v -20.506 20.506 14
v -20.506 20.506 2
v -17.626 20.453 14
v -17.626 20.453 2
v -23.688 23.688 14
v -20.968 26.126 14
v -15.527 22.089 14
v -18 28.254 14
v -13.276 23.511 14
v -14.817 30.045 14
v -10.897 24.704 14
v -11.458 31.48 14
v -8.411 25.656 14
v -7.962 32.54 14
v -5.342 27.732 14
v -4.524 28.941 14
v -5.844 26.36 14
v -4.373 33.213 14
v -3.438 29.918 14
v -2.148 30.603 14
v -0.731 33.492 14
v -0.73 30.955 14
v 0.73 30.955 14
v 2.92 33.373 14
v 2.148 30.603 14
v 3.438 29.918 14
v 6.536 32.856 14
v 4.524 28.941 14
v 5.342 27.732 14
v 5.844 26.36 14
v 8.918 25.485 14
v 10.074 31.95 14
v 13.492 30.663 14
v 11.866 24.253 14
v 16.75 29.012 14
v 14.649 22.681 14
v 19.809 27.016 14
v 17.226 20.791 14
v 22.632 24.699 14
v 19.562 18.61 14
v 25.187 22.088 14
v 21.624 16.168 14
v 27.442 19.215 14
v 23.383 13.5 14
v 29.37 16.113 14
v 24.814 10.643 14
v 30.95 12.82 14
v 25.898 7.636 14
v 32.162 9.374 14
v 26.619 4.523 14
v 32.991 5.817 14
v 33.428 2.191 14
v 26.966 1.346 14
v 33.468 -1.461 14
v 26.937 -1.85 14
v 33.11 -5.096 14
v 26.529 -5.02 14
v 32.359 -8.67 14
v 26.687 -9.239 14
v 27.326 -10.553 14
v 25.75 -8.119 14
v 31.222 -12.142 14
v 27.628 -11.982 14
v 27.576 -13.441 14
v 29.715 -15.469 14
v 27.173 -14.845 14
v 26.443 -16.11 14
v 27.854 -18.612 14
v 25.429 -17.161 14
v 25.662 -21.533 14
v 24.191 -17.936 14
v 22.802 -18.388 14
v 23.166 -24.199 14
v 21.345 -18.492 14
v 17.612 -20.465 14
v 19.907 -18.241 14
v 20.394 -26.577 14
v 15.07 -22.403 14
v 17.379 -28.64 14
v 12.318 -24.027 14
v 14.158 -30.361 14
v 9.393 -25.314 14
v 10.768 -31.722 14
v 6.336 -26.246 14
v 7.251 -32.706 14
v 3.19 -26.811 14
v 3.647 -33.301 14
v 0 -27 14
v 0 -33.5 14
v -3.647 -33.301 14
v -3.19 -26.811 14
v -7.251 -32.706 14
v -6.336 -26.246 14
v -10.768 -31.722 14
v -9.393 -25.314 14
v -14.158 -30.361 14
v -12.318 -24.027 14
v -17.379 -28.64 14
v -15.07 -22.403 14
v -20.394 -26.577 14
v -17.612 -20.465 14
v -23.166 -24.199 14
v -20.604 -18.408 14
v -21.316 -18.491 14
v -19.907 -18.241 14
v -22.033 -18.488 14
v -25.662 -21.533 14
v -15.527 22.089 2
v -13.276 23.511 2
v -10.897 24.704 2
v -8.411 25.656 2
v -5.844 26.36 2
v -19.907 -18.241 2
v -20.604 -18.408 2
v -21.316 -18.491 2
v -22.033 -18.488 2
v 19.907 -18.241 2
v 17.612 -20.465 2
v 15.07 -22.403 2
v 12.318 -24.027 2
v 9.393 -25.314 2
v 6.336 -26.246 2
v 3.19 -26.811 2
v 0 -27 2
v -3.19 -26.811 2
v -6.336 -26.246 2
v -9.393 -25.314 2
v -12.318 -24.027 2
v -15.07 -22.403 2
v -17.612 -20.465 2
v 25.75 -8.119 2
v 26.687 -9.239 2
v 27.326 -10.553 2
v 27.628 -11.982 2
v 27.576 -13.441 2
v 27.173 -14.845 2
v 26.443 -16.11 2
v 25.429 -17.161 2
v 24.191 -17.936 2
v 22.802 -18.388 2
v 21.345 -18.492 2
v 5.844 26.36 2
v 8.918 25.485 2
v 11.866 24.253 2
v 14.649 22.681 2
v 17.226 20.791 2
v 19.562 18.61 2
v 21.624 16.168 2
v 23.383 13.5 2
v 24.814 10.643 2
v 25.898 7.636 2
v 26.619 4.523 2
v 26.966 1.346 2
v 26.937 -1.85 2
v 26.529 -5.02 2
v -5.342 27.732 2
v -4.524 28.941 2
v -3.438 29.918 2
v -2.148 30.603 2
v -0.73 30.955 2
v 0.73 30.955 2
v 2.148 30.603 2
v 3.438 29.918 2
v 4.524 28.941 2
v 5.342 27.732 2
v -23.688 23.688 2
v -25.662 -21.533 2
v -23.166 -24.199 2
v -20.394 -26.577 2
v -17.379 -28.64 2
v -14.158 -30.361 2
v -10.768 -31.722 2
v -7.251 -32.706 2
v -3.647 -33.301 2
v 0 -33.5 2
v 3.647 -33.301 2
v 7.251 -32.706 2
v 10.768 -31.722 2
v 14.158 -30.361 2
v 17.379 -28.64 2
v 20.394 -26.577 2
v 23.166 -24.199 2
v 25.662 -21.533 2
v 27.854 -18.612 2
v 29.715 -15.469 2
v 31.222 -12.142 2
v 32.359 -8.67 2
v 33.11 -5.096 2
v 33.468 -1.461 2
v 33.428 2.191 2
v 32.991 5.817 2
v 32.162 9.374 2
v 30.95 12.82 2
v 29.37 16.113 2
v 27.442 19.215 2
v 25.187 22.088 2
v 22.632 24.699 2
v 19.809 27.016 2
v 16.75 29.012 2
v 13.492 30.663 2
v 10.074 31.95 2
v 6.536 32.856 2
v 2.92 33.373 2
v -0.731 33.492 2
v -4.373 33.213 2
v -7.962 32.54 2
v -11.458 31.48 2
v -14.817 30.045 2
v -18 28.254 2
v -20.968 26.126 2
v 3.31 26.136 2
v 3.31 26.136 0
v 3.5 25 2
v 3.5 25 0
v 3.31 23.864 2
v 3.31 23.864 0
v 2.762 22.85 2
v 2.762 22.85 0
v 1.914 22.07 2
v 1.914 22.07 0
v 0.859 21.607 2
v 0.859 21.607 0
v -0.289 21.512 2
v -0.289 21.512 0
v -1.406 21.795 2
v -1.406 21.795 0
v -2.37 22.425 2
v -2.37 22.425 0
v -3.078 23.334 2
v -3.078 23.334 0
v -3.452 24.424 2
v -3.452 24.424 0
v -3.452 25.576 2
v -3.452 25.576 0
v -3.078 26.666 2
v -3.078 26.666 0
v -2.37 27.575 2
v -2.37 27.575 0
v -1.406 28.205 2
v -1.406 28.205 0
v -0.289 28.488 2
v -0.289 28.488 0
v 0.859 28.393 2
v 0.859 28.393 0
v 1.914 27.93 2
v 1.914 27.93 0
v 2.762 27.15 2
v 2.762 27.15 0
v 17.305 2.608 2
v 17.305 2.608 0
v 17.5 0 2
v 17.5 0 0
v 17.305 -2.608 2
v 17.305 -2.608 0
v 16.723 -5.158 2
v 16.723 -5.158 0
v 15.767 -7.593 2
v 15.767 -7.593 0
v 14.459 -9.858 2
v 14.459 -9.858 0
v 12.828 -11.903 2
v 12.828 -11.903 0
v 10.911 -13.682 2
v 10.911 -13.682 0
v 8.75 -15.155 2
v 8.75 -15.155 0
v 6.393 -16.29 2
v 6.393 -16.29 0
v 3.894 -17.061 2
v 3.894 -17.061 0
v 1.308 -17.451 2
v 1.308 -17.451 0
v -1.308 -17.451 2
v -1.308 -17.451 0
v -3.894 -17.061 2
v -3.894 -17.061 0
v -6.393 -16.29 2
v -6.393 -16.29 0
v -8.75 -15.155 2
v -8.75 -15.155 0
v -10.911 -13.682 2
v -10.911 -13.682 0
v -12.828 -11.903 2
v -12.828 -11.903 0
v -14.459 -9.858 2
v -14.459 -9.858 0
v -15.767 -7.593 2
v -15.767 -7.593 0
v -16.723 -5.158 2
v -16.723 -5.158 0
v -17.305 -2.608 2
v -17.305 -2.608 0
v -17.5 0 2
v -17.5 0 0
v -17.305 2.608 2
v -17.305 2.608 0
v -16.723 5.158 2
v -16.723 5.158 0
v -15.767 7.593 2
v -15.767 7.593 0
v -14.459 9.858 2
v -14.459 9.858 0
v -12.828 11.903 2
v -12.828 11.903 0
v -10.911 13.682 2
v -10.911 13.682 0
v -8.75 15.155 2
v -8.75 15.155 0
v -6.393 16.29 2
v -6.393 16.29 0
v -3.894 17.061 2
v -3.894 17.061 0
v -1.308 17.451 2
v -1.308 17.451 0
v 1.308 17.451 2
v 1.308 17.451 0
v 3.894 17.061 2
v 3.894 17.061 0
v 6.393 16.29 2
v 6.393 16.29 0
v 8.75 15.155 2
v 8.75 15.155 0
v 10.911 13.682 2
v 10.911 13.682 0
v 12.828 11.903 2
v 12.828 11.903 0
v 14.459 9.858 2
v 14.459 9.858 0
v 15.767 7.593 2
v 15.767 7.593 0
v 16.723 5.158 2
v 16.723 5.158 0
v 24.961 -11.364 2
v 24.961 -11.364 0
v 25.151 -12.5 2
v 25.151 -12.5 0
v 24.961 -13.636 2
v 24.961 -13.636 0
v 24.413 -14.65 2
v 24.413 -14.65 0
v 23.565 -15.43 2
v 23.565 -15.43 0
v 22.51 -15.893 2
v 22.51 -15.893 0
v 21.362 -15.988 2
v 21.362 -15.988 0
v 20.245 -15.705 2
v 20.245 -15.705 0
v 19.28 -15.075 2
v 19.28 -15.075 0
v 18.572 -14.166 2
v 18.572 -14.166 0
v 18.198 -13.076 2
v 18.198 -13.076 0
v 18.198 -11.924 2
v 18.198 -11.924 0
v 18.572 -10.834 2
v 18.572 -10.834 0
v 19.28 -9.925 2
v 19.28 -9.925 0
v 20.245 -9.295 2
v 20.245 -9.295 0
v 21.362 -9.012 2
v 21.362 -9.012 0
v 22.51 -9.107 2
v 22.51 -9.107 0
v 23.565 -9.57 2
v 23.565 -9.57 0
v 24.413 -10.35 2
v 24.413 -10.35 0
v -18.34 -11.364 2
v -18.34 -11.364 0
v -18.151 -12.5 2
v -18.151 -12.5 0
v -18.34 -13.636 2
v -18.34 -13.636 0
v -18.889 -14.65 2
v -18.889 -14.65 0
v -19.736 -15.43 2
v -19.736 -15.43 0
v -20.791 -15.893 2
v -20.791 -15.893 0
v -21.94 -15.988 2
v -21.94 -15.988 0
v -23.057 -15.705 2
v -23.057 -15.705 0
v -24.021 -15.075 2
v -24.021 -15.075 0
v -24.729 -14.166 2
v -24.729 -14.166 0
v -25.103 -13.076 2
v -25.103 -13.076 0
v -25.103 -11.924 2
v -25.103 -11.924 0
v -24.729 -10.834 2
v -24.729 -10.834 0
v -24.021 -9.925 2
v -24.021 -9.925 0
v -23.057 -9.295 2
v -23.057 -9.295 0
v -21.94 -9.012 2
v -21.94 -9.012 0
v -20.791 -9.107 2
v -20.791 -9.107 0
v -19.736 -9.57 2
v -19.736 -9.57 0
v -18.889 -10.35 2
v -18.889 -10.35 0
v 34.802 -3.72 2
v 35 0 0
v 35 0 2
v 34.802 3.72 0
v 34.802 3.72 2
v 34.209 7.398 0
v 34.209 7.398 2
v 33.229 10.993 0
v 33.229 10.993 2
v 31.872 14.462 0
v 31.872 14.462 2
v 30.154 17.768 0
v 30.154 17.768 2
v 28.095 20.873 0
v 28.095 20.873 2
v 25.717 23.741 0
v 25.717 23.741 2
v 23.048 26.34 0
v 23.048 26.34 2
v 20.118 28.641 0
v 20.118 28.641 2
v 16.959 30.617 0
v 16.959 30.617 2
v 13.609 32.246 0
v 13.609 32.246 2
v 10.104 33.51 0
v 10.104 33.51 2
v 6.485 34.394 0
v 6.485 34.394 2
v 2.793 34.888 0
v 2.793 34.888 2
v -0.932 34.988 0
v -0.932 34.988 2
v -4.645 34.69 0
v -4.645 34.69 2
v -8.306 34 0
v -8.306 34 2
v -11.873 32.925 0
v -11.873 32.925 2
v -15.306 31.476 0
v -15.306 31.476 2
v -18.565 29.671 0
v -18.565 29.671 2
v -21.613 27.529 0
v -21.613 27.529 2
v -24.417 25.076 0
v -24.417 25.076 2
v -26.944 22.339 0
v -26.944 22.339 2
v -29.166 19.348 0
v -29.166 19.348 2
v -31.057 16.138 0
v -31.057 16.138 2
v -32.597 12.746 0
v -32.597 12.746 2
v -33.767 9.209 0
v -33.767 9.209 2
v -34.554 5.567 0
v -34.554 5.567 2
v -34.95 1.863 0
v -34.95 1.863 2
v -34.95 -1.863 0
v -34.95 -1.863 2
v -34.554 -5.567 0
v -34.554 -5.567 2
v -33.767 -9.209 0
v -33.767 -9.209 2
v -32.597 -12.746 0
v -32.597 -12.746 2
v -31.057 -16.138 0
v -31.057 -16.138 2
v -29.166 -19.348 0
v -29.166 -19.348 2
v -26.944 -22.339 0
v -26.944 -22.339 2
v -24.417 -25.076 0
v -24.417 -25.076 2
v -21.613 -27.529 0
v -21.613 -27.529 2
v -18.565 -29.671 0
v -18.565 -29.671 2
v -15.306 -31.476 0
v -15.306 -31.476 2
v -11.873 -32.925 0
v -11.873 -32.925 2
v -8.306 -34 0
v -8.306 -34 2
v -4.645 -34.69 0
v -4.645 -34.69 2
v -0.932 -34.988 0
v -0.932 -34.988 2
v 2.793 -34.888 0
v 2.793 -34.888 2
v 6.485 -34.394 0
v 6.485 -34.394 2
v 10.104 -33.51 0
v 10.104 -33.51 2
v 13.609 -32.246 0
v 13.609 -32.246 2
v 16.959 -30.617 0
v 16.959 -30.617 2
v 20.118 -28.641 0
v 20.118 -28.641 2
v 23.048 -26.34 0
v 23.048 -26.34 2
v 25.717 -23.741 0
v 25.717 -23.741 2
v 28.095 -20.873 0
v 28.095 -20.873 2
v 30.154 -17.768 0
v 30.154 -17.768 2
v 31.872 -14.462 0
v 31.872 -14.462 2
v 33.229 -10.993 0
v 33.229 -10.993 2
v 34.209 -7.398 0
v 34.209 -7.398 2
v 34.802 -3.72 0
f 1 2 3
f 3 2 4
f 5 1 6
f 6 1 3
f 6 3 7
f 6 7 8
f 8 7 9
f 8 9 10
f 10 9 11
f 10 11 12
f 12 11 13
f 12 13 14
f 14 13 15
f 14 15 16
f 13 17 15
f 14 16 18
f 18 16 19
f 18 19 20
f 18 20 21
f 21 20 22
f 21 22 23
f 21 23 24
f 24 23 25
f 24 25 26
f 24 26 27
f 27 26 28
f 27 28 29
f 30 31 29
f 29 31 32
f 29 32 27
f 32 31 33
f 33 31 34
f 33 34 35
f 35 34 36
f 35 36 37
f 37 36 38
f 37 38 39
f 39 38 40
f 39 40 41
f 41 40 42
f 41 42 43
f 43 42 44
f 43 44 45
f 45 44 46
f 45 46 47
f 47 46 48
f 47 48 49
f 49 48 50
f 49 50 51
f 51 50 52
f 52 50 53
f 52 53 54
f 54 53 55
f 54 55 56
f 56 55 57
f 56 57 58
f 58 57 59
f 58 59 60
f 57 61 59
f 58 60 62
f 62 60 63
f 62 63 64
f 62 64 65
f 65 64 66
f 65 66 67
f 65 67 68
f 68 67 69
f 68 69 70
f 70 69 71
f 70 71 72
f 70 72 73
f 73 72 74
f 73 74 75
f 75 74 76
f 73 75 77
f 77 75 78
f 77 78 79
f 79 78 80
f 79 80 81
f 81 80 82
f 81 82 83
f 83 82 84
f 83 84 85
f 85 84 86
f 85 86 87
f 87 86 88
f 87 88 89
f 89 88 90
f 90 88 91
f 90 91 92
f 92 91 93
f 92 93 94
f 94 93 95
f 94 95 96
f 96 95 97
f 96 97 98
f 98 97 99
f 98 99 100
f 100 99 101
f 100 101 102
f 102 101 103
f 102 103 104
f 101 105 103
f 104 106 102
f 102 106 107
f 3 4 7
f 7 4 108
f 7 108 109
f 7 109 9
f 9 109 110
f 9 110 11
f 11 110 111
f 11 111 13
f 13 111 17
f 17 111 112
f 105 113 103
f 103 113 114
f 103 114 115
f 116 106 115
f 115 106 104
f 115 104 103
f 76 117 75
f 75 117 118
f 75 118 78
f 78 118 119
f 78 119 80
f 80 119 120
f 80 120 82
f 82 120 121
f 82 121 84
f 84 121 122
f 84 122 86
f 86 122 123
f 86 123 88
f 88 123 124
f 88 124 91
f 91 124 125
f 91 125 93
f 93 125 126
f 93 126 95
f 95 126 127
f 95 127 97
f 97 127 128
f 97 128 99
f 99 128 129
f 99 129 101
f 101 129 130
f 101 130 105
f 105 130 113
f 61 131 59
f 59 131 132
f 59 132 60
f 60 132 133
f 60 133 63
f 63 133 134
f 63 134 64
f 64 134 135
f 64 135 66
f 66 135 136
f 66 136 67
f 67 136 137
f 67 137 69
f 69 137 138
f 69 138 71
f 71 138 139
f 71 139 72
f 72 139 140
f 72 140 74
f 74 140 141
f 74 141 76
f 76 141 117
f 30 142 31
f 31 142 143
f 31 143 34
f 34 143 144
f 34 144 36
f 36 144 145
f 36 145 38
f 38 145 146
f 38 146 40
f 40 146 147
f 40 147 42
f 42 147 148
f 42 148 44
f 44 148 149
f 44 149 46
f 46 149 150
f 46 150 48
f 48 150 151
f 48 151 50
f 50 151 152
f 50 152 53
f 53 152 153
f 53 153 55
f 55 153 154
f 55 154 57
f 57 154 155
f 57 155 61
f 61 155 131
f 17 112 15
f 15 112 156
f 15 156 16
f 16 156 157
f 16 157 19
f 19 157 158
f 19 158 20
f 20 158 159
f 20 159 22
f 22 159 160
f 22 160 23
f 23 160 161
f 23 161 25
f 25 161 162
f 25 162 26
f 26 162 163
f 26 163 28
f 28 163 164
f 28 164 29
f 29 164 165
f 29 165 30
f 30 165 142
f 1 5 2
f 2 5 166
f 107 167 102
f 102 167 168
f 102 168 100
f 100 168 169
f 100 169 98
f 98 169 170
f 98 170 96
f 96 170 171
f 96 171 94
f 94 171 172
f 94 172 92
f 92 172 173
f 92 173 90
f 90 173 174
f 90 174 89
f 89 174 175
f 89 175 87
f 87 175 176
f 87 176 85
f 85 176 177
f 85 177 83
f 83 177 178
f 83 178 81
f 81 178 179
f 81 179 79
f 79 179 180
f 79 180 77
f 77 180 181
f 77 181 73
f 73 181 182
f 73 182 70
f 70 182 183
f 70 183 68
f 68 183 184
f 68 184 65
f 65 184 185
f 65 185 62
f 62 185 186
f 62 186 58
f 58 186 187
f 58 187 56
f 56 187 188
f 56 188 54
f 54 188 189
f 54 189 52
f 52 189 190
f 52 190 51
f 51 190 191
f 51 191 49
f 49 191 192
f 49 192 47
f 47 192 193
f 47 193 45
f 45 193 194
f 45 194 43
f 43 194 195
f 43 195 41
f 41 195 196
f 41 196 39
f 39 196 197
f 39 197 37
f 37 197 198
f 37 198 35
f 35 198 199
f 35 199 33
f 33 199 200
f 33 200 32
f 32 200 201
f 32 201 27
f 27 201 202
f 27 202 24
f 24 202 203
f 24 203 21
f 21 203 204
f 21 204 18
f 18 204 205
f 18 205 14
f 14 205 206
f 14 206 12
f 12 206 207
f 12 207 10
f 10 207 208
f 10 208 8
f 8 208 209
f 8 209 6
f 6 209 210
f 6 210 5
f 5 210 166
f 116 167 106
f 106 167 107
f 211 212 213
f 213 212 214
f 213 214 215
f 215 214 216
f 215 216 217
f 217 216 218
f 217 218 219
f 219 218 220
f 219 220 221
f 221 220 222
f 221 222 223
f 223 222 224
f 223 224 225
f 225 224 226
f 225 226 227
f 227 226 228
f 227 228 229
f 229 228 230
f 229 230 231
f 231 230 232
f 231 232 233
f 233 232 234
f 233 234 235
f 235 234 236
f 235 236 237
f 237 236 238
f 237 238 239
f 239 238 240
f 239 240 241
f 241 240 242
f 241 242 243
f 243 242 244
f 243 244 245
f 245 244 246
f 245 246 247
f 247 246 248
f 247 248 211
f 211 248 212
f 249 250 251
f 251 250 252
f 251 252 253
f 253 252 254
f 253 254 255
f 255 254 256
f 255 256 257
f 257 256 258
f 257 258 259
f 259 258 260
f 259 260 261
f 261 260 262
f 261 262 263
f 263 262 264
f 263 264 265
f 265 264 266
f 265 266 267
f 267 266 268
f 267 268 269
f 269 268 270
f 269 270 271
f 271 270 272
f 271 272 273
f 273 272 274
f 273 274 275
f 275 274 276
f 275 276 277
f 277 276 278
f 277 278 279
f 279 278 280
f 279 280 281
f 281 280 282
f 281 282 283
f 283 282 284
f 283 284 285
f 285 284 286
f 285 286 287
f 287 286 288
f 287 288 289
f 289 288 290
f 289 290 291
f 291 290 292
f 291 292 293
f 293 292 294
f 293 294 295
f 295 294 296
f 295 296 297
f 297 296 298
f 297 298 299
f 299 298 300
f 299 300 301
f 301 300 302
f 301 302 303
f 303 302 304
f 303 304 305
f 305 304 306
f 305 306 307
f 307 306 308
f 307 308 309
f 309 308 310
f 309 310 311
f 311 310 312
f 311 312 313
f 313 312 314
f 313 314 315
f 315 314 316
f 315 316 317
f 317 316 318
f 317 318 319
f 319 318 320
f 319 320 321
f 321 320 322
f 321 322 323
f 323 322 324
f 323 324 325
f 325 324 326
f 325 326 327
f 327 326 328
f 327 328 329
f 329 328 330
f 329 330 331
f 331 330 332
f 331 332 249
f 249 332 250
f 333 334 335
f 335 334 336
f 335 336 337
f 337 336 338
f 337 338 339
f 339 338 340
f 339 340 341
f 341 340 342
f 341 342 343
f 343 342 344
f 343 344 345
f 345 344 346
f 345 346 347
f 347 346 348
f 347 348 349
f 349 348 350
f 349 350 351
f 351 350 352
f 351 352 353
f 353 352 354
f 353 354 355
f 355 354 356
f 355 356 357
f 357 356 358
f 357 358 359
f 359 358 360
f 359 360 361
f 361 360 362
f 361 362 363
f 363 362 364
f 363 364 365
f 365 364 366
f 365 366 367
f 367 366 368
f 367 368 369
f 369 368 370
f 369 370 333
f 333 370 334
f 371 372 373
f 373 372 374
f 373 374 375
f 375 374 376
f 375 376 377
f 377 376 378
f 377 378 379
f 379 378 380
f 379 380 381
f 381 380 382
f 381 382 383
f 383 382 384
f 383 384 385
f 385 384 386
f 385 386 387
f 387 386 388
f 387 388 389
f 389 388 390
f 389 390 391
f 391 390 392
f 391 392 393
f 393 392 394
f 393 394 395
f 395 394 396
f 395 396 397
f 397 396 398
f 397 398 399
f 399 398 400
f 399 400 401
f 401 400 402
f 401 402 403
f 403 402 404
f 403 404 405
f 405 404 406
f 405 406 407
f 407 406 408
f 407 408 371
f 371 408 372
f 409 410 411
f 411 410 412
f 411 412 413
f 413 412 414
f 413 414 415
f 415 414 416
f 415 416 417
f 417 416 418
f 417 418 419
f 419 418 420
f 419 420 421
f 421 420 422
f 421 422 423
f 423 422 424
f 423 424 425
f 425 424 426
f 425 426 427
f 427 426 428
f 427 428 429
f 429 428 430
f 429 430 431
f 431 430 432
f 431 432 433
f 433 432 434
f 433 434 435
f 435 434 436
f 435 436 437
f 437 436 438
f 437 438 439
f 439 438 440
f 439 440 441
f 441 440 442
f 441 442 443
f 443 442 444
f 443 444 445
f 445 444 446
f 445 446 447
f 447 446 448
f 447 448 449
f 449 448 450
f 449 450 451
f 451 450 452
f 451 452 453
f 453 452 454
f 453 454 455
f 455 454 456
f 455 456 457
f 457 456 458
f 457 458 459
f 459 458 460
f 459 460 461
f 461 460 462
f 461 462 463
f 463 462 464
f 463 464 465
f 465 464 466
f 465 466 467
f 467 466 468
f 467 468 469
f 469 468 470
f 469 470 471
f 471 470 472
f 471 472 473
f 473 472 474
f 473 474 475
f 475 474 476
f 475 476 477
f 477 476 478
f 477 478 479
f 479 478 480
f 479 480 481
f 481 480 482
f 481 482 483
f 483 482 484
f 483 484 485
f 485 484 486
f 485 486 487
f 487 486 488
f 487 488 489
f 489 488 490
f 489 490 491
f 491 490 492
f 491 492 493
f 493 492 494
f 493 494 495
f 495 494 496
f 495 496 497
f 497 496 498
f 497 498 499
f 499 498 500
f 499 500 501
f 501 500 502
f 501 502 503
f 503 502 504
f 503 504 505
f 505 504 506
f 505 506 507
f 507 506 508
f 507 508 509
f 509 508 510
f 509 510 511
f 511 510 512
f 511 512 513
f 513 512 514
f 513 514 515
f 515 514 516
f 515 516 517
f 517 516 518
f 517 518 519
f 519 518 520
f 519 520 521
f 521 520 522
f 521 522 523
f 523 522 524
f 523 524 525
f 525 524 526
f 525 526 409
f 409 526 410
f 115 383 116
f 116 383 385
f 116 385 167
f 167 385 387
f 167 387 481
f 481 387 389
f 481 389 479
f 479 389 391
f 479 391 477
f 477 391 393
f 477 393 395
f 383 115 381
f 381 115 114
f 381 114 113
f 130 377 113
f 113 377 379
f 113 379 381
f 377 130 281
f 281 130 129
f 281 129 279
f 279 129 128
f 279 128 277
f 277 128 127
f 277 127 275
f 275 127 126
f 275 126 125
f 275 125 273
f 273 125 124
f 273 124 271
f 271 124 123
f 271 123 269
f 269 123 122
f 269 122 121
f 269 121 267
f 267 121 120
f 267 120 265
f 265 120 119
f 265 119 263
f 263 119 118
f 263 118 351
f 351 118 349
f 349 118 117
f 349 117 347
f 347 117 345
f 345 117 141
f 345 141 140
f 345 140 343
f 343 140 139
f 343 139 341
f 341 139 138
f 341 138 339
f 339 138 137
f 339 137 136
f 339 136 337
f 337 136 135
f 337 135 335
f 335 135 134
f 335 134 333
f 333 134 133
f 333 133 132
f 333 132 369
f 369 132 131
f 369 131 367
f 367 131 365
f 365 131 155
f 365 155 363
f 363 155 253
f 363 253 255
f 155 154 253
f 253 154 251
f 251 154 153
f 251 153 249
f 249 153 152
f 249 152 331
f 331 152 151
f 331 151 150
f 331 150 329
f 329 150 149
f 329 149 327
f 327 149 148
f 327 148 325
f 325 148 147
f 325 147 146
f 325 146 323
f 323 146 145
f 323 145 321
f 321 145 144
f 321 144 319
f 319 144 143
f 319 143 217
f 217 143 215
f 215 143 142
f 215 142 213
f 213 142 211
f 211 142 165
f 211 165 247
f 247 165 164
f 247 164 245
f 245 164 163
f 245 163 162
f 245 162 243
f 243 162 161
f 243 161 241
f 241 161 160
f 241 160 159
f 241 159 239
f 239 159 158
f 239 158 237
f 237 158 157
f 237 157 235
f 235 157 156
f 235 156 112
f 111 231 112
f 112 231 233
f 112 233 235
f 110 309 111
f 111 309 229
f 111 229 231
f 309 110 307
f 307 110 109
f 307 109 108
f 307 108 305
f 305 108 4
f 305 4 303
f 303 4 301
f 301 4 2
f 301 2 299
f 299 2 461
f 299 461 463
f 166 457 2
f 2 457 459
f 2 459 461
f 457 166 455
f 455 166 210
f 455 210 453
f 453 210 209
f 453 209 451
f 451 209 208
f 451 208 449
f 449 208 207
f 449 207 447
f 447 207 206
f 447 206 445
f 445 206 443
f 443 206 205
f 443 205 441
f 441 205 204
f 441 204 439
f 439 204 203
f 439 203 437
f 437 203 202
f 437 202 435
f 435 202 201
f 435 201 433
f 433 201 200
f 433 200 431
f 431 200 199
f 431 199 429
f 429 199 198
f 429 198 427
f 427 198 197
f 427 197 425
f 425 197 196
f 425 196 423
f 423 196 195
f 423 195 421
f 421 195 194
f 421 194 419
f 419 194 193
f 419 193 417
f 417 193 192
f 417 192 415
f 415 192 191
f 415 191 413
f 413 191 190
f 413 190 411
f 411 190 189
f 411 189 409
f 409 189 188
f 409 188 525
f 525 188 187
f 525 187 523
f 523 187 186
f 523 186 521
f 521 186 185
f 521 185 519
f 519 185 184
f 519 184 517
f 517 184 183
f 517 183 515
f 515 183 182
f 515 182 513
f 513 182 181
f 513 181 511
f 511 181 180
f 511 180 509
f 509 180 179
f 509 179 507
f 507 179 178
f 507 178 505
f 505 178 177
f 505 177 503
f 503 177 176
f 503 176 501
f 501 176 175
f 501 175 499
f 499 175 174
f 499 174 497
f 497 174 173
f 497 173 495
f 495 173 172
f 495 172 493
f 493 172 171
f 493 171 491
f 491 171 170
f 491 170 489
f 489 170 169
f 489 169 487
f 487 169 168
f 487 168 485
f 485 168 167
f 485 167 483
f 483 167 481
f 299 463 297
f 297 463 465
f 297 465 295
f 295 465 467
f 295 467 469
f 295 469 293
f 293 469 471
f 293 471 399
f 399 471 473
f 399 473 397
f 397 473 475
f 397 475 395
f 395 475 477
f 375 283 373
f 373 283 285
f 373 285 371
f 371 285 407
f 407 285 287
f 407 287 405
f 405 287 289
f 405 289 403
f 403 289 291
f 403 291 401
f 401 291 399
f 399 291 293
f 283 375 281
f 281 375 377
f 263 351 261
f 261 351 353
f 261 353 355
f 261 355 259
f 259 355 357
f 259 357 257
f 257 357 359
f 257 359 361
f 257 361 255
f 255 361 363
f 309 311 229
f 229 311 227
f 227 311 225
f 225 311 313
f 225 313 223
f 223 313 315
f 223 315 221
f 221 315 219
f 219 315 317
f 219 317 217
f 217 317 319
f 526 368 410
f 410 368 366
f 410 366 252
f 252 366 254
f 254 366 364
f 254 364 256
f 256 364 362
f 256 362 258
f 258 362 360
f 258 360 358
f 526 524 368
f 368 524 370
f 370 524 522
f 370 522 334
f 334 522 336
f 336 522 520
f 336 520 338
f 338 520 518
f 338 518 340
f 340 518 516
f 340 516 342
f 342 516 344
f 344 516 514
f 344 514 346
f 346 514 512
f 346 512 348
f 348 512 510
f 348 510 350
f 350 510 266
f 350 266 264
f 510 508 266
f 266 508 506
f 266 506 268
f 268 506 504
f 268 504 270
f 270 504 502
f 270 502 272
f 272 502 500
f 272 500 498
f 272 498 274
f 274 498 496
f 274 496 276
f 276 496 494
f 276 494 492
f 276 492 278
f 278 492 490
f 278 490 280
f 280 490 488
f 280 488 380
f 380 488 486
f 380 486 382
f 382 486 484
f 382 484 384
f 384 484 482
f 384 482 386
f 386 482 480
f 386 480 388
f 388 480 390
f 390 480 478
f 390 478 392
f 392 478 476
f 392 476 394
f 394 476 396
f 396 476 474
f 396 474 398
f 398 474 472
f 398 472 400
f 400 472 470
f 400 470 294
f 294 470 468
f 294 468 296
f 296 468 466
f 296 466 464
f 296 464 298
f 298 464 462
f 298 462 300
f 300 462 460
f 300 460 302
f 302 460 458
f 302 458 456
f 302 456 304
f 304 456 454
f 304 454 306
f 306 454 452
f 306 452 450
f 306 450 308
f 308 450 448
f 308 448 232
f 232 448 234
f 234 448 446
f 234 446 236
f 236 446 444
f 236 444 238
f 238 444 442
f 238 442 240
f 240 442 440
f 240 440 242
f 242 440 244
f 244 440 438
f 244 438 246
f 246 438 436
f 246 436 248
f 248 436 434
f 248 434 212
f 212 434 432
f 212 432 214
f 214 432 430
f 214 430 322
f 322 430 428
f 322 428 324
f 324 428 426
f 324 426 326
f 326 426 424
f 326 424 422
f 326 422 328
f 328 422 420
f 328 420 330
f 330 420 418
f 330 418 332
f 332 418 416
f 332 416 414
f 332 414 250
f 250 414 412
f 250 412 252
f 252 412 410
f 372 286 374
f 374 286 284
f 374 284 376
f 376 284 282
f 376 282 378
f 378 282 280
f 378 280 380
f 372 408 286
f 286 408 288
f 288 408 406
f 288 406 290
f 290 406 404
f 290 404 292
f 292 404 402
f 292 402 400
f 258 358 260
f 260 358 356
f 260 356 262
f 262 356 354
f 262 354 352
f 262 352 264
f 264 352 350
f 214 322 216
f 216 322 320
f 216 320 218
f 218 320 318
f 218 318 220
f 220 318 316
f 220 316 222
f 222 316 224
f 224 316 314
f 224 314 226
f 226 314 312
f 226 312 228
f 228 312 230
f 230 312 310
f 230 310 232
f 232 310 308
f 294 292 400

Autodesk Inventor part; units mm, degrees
ref_plane "YZ Plane" through (0, 0, 0) normal (1, 0, 0) x (0, 1, 0)
ref_plane "XZ Plane" through (0, 0, 0) normal (0, 1, 0) x (-1, 0, 0)
ref_plane "XY Plane" through (0, 0, 0) normal (0, 0, 1) x (1, 0, 0)
sketch "Sketch1" plane through (0, 0, 0) normal (0, 0, 1) x (1, 0, 0)
  circle A0 centre (0, 25) radius 3.5
  circle A1 centre (-21.6506, -12.5) radius 3.5
  circle A2 centre (21.6506, -12.5) radius 3.5
  line L0 (0, -16) -> (0, 10.5643) construction
  circle A3 centre (0, 0) radius 17.5
  circle A4 centre (0, 0) radius 35
  arc A5 (-19.6928, -15.4012) -> (19.6928, -15.4012) centre (0, 0) ccw
  arc A6 (23.1842, -9.3538) -> (3.4914, 24.755) centre (0, 0) ccw
  arc A7 (-3.4914, 24.755) -> (-23.1842, -9.3538) centre (0, 0) ccw
  dimension "d1" = 7
  dimension "d4" = 360
  dimension "d10" = 70
  dimension "d11" = 35
extrude "Extrusion1" add sketch "Sketch1" along normal blind 2 contours A0 A6 A2 A5 A1 A7 | A4
sketch "Sketch2" plane through (0, 0, 2) normal (0, 0, 1) x (1, 0, 0)
  circle A0 centre (0, 0) radius 27
  circle A1 centre (0, 0) radius 33.5
  line L0 (0, 0) -> (-23.6881, 23.6881)
  line L1 (0, 0) -> (-25.6625, -21.5334)
  line L2 (0, -27) -> (0, 12.4215) construction
  circle A2 centre (0, 25) radius 3.5 projected
  circle A3 centre (0, 25) radius 6
  circle A4 centre (21.6506, -12.5) radius 3.5 projected
  circle A5 centre (21.6506, -12.5) radius 6
  circle A6 centre (-21.6506, -12.5) radius 3.5 projected
  circle A7 centre (-21.6506, -12.5) radius 6
  point P0 (-20.6832, -17.3553)
  point P1 (-19.0919, 19.0919)
  point P2 (-19.9065, -18.2409)
  point P3 (-22.0329, -18.4878)
  point P4 (-5.8438, 26.36)
  point P5 (5.8438, 26.36)
  point P6 (25.7503, -8.1191)
  point P7 (19.9065, -18.2409)
  dimension "d14" = 54
  dimension "d15" = 67
  dimension "d17" = 50
  dimension "d18" = 45
  dimension "d24" = 12
  dimension "d25" = 12
  dimension "d26" = 12
extrude "Extrusion2" add sketch "Sketch2" along normal blind 12 contours A0 A3 L0 A1 L1 A7 A5
chamfer "Chamfer1" distance 2 angle 45 1 edges at (-19.0919, 19.0919, 8)
equation "\"d19\" = d24"
properties part number "pulleycase"
